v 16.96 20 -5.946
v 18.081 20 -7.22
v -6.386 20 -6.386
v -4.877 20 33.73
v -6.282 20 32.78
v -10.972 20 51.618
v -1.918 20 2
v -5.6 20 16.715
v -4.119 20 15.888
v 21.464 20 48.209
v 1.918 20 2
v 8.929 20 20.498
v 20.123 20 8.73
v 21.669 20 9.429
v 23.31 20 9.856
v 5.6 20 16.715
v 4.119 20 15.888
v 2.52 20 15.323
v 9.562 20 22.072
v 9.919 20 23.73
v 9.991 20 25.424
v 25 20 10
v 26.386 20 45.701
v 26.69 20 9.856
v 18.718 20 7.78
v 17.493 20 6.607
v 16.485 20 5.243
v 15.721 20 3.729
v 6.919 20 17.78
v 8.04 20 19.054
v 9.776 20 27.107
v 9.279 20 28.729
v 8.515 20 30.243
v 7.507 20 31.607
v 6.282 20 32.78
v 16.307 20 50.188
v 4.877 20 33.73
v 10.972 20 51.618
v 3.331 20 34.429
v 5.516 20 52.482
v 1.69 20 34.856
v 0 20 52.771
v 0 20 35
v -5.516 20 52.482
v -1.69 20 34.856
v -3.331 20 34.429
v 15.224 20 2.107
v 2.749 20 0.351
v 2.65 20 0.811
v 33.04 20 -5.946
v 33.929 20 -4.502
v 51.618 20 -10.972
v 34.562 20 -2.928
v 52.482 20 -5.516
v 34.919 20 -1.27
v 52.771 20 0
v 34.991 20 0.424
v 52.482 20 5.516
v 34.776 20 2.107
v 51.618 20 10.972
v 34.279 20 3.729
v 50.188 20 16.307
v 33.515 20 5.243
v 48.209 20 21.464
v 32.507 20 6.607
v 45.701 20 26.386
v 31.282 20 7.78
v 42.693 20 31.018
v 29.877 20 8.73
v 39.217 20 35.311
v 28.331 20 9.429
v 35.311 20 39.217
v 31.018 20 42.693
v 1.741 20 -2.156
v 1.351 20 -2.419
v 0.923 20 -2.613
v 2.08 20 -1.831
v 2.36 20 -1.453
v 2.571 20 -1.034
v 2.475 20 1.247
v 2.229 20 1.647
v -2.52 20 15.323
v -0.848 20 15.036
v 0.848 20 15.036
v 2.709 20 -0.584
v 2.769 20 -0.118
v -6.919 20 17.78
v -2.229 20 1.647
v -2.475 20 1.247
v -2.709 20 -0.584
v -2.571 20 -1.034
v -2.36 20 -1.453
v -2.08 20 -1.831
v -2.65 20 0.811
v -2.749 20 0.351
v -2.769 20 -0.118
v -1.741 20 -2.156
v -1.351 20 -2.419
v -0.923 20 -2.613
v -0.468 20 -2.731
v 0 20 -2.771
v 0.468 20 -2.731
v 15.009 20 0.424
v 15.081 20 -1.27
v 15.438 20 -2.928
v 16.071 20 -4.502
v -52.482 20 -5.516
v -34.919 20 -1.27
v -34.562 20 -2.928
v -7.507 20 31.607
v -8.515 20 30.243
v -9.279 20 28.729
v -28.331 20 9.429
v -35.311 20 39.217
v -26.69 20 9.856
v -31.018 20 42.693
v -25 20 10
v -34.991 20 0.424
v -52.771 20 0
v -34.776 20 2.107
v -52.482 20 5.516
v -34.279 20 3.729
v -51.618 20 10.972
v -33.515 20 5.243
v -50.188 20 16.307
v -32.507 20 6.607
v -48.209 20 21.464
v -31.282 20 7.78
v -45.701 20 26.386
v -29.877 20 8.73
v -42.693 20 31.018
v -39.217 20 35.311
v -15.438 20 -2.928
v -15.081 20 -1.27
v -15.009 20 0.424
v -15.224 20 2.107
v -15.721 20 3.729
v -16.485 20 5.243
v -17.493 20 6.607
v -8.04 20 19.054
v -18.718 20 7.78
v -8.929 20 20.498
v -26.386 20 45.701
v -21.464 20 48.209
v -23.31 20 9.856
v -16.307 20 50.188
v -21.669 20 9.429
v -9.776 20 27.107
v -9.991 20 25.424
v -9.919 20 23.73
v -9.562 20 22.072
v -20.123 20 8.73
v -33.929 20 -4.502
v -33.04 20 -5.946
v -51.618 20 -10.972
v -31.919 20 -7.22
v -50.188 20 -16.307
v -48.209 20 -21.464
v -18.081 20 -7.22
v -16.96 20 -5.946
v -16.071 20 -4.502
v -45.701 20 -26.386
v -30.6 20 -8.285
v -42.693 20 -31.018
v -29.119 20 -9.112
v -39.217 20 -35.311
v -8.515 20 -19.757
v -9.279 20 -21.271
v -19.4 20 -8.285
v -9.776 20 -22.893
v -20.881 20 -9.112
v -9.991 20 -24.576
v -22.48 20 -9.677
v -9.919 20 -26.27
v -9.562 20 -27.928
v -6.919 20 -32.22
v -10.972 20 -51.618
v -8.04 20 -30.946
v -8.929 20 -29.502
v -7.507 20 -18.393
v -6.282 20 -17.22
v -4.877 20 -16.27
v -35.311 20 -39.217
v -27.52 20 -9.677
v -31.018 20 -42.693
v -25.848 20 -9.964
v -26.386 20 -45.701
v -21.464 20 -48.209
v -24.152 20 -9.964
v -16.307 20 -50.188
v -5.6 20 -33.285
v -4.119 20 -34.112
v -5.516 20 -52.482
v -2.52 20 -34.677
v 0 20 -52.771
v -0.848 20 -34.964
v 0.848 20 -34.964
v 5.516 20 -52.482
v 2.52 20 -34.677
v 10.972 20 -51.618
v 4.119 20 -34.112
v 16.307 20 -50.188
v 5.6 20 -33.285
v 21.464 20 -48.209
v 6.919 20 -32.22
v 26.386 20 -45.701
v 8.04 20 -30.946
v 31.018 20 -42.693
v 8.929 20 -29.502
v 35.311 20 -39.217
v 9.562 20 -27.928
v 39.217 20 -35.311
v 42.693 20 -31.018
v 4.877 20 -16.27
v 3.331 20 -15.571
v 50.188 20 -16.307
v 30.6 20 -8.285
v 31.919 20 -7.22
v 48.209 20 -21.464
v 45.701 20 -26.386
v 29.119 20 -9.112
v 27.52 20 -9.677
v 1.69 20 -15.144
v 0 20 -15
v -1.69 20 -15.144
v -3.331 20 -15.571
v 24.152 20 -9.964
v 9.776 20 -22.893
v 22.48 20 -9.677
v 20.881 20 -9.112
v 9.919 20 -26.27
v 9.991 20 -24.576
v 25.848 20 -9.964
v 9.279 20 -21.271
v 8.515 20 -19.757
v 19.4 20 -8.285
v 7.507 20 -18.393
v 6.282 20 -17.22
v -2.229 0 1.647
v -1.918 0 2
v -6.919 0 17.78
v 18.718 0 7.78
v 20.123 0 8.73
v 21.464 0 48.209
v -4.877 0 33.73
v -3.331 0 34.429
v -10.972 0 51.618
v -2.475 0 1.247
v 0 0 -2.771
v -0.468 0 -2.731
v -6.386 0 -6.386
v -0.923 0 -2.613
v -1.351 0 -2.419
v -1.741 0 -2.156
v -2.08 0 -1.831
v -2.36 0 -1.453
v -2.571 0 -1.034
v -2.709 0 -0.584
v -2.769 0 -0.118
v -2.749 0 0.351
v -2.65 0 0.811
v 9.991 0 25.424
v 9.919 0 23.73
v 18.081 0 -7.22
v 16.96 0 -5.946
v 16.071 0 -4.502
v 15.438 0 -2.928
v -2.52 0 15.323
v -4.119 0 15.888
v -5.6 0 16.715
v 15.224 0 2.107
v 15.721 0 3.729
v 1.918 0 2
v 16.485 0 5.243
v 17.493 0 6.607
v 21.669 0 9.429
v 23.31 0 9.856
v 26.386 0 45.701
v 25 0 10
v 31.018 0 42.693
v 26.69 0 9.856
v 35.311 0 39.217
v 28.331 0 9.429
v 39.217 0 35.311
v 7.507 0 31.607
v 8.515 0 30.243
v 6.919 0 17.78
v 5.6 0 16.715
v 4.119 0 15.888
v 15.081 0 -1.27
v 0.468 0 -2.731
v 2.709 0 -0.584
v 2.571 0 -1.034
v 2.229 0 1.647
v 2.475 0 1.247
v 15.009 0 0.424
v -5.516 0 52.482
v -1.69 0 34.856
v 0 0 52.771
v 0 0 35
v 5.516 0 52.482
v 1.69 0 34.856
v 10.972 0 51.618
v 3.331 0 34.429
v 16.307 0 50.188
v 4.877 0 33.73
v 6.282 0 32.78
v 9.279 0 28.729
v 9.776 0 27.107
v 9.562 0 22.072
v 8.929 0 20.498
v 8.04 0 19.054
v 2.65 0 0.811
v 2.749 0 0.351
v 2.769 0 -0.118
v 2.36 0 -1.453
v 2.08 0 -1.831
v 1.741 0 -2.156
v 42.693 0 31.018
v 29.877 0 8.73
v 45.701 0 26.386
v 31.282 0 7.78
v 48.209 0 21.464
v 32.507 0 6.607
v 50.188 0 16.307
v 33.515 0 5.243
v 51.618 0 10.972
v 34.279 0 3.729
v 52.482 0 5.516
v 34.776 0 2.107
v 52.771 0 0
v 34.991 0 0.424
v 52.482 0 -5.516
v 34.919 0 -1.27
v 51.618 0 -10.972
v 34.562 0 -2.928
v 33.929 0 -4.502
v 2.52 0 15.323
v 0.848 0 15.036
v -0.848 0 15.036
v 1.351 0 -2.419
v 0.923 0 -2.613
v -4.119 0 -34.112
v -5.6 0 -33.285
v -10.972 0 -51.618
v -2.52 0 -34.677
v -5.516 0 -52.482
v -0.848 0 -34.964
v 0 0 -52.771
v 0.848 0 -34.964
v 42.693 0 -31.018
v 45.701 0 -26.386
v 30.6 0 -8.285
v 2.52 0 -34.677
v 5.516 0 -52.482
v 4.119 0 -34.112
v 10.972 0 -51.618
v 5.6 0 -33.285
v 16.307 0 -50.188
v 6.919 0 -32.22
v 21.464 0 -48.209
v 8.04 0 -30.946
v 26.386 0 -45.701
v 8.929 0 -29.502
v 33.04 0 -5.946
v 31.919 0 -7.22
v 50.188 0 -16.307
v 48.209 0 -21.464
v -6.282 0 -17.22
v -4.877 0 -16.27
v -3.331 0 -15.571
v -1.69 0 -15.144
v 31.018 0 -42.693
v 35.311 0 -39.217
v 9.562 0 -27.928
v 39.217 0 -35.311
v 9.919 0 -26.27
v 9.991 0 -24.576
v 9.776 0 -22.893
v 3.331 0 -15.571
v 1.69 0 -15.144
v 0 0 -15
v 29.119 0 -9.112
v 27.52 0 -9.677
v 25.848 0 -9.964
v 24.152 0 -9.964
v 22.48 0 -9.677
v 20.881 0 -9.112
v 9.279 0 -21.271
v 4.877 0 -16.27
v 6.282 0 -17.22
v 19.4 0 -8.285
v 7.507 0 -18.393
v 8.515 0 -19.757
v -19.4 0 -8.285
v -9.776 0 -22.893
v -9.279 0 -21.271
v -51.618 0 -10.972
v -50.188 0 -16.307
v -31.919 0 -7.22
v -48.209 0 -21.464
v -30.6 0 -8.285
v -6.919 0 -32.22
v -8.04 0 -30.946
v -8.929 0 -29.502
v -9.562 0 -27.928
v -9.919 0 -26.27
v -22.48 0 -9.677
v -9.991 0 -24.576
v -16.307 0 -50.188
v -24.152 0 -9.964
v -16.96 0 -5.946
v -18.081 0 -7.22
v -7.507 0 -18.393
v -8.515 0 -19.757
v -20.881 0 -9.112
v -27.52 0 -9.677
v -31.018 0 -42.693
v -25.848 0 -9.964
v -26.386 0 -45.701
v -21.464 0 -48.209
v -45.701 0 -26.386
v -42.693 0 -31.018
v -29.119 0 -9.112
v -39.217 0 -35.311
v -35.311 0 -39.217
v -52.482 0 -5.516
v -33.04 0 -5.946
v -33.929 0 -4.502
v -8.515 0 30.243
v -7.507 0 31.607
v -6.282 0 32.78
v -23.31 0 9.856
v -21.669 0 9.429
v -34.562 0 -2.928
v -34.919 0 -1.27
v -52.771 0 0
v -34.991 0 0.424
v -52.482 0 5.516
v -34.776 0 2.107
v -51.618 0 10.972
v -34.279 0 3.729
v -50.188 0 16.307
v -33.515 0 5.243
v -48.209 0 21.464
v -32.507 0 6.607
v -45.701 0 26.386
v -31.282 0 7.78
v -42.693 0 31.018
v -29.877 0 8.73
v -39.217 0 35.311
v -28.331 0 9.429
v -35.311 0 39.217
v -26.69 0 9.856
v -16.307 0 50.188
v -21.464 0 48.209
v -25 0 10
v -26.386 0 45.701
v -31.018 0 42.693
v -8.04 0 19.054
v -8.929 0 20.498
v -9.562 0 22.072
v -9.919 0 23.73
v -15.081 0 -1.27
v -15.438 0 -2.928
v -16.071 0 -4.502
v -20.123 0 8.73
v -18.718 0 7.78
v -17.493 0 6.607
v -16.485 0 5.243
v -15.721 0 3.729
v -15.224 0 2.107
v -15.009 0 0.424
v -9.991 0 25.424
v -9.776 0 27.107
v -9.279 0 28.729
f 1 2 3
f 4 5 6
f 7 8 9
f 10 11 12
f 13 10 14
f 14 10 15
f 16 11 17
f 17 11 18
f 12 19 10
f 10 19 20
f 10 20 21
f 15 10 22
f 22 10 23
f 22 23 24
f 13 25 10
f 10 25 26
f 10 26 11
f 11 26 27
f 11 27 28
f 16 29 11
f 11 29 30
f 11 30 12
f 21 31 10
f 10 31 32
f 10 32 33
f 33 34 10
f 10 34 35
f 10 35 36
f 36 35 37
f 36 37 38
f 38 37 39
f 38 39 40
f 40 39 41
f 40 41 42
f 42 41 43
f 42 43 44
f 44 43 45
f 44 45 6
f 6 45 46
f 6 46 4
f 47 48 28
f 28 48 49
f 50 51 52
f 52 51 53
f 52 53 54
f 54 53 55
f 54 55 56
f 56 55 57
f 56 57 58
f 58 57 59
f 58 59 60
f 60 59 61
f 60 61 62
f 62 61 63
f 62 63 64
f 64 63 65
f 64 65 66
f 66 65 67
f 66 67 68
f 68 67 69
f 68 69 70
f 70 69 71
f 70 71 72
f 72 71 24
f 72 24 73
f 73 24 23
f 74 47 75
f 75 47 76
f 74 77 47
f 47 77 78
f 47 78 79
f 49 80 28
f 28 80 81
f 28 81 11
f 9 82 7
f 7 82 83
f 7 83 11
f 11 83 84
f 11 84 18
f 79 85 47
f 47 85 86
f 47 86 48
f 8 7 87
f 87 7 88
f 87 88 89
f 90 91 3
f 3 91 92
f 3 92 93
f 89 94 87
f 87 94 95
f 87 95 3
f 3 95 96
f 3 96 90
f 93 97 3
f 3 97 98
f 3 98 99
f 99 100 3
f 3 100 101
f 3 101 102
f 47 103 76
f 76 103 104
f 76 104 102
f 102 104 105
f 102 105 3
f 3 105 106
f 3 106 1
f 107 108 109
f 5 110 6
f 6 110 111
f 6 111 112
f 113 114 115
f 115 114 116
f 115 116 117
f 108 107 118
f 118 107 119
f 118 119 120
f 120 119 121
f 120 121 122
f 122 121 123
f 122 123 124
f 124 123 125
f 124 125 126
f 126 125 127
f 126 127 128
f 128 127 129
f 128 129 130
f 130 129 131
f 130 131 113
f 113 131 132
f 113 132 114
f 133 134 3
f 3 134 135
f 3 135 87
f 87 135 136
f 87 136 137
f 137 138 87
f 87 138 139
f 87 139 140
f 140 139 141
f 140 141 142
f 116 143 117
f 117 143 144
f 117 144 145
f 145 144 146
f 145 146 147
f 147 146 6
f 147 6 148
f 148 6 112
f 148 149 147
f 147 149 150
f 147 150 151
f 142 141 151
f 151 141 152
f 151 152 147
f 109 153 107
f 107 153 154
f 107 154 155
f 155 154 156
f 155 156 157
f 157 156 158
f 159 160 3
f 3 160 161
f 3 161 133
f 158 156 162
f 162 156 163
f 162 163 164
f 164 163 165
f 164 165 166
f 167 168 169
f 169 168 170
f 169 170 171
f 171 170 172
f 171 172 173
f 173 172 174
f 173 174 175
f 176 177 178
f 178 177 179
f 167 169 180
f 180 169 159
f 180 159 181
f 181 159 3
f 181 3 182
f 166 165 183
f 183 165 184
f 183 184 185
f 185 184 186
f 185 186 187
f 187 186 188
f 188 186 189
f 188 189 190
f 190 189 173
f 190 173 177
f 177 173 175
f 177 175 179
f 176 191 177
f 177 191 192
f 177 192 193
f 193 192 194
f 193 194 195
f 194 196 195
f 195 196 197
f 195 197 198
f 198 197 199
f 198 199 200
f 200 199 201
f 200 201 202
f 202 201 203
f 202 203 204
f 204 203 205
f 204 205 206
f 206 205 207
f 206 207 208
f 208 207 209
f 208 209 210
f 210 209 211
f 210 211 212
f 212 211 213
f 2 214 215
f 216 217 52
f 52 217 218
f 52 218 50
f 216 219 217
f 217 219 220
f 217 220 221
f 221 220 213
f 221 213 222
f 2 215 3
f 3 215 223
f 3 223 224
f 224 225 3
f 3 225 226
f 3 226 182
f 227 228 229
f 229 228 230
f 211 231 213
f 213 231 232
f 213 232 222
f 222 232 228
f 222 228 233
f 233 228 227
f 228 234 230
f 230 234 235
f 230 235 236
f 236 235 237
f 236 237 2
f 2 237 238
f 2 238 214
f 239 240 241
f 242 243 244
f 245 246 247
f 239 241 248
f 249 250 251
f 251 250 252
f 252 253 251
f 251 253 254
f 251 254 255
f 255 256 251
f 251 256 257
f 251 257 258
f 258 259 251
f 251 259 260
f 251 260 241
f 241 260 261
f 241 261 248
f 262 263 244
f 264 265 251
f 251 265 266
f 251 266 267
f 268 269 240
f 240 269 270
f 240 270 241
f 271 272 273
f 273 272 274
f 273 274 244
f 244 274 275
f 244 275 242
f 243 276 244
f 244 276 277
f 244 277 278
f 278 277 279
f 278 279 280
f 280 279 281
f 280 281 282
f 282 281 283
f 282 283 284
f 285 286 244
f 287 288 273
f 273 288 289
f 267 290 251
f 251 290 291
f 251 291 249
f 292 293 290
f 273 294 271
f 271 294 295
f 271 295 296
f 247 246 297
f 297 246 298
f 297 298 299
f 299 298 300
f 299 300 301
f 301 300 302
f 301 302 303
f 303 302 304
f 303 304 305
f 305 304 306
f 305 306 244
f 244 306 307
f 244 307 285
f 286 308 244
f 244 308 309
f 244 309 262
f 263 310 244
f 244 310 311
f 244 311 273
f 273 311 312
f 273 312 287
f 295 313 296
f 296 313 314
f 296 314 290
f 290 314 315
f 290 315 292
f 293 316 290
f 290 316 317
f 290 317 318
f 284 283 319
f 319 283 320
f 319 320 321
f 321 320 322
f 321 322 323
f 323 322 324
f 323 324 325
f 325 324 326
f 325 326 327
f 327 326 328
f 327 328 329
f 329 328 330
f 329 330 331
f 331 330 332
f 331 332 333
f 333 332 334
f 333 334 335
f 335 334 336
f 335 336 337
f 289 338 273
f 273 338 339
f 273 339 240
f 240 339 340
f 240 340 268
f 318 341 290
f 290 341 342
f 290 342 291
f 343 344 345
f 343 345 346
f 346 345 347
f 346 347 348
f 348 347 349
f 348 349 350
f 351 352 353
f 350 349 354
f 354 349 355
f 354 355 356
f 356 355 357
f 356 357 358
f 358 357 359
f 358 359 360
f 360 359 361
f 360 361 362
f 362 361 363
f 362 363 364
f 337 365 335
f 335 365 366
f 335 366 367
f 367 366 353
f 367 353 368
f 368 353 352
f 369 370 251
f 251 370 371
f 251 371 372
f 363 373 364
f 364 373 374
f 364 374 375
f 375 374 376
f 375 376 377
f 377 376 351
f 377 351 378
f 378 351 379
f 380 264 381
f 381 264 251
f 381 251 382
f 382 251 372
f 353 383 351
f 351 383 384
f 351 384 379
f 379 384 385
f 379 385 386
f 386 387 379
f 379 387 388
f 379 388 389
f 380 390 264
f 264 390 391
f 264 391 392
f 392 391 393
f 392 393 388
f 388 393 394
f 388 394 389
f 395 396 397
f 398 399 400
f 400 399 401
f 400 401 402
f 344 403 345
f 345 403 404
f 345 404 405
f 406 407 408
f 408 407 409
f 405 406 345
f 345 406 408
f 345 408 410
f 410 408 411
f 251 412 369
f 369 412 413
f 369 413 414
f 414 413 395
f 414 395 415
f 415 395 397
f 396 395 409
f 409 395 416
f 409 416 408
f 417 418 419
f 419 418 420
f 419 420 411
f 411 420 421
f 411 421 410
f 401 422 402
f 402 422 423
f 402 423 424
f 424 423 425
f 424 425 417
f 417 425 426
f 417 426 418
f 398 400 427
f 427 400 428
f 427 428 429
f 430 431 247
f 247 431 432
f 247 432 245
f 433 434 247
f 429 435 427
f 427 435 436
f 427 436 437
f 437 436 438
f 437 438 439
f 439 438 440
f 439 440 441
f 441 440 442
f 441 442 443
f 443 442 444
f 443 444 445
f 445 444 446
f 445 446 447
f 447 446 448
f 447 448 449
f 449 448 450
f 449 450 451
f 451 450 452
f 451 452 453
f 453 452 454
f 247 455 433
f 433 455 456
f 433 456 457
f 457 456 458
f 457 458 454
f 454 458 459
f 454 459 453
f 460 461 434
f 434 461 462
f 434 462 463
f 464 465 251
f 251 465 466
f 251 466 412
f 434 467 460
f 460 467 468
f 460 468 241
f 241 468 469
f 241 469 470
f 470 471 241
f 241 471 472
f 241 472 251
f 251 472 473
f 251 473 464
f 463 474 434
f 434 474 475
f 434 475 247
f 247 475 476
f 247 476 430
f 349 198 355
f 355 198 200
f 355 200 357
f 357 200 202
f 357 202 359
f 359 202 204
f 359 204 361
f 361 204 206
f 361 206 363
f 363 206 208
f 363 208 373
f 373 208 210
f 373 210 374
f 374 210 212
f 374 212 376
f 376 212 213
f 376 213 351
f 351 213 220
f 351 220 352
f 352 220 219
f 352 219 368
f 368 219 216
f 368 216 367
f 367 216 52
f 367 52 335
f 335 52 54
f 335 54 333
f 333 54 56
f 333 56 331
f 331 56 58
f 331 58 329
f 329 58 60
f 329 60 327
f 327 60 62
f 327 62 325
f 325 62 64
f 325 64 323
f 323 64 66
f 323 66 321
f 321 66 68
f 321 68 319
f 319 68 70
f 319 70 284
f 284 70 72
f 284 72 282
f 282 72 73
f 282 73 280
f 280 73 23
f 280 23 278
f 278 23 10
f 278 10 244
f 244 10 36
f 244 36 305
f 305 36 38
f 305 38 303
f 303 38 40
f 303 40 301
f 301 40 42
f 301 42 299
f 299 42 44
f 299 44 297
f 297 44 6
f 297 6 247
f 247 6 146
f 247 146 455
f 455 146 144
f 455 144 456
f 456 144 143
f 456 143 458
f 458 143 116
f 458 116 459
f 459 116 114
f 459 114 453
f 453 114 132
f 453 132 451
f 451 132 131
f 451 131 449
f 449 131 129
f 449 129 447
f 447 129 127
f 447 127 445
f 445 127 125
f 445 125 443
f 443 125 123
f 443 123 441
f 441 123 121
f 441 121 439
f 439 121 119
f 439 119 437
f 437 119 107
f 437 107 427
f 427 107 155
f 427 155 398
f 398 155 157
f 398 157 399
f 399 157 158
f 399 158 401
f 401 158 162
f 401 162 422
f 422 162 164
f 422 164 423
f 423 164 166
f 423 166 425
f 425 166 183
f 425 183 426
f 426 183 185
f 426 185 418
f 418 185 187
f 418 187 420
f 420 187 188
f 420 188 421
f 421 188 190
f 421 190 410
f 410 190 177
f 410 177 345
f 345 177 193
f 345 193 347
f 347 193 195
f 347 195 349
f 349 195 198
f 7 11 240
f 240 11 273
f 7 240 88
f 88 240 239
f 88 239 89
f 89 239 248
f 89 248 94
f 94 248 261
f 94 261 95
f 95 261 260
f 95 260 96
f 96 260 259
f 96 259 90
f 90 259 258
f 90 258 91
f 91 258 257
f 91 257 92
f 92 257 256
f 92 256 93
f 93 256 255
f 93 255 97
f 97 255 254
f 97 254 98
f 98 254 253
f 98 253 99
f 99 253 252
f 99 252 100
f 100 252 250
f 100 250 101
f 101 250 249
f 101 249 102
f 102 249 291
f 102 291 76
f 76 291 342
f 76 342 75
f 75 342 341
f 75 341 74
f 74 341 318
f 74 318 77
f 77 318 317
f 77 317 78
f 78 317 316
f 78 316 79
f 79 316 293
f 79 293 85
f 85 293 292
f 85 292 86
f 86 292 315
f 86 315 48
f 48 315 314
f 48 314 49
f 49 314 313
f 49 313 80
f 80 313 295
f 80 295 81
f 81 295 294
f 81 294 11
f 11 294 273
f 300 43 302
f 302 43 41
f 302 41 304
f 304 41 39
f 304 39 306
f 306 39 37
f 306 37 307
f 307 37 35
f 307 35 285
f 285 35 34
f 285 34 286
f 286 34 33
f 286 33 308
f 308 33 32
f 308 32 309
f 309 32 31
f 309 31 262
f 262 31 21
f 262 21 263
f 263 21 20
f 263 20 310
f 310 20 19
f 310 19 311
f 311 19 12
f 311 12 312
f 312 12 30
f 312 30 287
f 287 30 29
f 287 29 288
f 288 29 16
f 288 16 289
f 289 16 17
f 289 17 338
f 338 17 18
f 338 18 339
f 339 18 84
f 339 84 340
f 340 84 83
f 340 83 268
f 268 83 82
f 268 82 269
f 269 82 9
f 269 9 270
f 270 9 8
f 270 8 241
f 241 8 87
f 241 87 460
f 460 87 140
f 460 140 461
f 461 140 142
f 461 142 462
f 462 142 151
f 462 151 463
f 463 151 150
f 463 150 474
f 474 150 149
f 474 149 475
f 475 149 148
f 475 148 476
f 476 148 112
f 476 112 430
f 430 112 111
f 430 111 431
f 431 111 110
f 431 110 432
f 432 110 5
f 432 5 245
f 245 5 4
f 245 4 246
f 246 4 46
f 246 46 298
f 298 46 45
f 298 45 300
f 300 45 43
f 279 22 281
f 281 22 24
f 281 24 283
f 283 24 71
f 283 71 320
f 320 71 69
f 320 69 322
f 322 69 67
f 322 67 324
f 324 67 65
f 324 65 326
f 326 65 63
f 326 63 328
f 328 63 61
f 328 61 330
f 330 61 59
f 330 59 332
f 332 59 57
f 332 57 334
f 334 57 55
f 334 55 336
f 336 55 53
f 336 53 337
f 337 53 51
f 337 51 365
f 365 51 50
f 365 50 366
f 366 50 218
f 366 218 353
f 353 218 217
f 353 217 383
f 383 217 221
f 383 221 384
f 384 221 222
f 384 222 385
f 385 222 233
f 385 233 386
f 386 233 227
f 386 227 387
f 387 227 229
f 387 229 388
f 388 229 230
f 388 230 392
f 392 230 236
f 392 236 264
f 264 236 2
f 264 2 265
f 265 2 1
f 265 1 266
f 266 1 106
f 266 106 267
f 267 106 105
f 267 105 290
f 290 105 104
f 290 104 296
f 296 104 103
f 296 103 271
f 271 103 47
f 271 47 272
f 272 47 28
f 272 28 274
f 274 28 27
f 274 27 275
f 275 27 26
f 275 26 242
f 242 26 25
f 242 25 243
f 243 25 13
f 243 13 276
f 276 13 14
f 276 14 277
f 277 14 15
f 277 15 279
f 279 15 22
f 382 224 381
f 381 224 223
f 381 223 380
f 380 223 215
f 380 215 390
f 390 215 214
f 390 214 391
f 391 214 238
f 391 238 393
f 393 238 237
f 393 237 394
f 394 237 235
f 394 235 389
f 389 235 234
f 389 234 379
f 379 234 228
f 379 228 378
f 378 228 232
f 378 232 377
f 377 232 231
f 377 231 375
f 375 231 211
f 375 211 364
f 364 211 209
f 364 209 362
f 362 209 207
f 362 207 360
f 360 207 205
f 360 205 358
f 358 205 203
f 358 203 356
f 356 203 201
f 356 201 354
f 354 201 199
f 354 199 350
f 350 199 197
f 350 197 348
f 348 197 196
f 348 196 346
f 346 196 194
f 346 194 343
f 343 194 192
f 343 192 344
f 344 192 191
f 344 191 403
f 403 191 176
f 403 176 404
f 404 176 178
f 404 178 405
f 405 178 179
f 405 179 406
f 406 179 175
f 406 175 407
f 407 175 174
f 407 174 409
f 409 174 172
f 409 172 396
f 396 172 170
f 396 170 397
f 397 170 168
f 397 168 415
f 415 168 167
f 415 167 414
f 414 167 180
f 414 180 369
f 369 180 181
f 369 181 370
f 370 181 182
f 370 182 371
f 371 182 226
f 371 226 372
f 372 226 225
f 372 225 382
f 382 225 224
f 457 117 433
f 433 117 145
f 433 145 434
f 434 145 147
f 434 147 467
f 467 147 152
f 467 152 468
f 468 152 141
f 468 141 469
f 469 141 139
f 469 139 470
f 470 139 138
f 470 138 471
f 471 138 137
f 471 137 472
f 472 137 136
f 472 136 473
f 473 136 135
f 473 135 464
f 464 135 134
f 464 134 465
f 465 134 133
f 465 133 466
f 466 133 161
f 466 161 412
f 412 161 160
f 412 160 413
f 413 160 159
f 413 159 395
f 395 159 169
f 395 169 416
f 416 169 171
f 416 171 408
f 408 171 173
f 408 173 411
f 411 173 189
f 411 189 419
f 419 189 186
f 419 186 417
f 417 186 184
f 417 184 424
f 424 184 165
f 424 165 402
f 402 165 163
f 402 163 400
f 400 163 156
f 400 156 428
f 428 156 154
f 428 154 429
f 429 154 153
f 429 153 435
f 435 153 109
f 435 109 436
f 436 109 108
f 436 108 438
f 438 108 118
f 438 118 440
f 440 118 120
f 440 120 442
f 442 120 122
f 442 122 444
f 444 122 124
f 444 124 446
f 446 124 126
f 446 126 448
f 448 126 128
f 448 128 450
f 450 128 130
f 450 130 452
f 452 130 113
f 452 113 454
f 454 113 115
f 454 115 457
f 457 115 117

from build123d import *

# Parameters (mm, degrees)
SKETCH1_R           = 52.771281292
BOSS_EXTRUDE1_DEPTH = 20
SKETCH3_R           = 10
CUT_EXTRUDE1_DEPTH  = 20


with BuildPart() as part:
    # Sketch1 → Boss-Extrude1 (new body)
    with BuildSketch(Plane(origin=(0, 0, 0), x_dir=(1, 0, 0), z_dir=(0, 1, 0))):
        Circle(SKETCH1_R)
        with BuildLine():
            Line((-1.918332609, -2), (1.918332609, -2))
            ThreePointArc((1.918332609, -2), (0, 2.771281292), (-1.918332609, -2))
        make_face(mode=Mode.SUBTRACT)
    extrude(amount=BOSS_EXTRUDE1_DEPTH)

    # Sketch3 → Cut-Extrude1 (cut)
    with BuildSketch(Plane(origin=(0, 20, 0), x_dir=(1, 0, 0), z_dir=(0, 1, 0))):
        with Locations((-25, 0)):
            Circle(SKETCH3_R)
        with Locations((0, 25)):
            Circle(SKETCH3_R)
        with Locations((25, 0)):
            Circle(SKETCH3_R)
        with Locations((0, -25)):
            Circle(SKETCH3_R)
    extrude(amount=-CUT_EXTRUDE1_DEPTH, mode=Mode.SUBTRACT)


solid = part.part
